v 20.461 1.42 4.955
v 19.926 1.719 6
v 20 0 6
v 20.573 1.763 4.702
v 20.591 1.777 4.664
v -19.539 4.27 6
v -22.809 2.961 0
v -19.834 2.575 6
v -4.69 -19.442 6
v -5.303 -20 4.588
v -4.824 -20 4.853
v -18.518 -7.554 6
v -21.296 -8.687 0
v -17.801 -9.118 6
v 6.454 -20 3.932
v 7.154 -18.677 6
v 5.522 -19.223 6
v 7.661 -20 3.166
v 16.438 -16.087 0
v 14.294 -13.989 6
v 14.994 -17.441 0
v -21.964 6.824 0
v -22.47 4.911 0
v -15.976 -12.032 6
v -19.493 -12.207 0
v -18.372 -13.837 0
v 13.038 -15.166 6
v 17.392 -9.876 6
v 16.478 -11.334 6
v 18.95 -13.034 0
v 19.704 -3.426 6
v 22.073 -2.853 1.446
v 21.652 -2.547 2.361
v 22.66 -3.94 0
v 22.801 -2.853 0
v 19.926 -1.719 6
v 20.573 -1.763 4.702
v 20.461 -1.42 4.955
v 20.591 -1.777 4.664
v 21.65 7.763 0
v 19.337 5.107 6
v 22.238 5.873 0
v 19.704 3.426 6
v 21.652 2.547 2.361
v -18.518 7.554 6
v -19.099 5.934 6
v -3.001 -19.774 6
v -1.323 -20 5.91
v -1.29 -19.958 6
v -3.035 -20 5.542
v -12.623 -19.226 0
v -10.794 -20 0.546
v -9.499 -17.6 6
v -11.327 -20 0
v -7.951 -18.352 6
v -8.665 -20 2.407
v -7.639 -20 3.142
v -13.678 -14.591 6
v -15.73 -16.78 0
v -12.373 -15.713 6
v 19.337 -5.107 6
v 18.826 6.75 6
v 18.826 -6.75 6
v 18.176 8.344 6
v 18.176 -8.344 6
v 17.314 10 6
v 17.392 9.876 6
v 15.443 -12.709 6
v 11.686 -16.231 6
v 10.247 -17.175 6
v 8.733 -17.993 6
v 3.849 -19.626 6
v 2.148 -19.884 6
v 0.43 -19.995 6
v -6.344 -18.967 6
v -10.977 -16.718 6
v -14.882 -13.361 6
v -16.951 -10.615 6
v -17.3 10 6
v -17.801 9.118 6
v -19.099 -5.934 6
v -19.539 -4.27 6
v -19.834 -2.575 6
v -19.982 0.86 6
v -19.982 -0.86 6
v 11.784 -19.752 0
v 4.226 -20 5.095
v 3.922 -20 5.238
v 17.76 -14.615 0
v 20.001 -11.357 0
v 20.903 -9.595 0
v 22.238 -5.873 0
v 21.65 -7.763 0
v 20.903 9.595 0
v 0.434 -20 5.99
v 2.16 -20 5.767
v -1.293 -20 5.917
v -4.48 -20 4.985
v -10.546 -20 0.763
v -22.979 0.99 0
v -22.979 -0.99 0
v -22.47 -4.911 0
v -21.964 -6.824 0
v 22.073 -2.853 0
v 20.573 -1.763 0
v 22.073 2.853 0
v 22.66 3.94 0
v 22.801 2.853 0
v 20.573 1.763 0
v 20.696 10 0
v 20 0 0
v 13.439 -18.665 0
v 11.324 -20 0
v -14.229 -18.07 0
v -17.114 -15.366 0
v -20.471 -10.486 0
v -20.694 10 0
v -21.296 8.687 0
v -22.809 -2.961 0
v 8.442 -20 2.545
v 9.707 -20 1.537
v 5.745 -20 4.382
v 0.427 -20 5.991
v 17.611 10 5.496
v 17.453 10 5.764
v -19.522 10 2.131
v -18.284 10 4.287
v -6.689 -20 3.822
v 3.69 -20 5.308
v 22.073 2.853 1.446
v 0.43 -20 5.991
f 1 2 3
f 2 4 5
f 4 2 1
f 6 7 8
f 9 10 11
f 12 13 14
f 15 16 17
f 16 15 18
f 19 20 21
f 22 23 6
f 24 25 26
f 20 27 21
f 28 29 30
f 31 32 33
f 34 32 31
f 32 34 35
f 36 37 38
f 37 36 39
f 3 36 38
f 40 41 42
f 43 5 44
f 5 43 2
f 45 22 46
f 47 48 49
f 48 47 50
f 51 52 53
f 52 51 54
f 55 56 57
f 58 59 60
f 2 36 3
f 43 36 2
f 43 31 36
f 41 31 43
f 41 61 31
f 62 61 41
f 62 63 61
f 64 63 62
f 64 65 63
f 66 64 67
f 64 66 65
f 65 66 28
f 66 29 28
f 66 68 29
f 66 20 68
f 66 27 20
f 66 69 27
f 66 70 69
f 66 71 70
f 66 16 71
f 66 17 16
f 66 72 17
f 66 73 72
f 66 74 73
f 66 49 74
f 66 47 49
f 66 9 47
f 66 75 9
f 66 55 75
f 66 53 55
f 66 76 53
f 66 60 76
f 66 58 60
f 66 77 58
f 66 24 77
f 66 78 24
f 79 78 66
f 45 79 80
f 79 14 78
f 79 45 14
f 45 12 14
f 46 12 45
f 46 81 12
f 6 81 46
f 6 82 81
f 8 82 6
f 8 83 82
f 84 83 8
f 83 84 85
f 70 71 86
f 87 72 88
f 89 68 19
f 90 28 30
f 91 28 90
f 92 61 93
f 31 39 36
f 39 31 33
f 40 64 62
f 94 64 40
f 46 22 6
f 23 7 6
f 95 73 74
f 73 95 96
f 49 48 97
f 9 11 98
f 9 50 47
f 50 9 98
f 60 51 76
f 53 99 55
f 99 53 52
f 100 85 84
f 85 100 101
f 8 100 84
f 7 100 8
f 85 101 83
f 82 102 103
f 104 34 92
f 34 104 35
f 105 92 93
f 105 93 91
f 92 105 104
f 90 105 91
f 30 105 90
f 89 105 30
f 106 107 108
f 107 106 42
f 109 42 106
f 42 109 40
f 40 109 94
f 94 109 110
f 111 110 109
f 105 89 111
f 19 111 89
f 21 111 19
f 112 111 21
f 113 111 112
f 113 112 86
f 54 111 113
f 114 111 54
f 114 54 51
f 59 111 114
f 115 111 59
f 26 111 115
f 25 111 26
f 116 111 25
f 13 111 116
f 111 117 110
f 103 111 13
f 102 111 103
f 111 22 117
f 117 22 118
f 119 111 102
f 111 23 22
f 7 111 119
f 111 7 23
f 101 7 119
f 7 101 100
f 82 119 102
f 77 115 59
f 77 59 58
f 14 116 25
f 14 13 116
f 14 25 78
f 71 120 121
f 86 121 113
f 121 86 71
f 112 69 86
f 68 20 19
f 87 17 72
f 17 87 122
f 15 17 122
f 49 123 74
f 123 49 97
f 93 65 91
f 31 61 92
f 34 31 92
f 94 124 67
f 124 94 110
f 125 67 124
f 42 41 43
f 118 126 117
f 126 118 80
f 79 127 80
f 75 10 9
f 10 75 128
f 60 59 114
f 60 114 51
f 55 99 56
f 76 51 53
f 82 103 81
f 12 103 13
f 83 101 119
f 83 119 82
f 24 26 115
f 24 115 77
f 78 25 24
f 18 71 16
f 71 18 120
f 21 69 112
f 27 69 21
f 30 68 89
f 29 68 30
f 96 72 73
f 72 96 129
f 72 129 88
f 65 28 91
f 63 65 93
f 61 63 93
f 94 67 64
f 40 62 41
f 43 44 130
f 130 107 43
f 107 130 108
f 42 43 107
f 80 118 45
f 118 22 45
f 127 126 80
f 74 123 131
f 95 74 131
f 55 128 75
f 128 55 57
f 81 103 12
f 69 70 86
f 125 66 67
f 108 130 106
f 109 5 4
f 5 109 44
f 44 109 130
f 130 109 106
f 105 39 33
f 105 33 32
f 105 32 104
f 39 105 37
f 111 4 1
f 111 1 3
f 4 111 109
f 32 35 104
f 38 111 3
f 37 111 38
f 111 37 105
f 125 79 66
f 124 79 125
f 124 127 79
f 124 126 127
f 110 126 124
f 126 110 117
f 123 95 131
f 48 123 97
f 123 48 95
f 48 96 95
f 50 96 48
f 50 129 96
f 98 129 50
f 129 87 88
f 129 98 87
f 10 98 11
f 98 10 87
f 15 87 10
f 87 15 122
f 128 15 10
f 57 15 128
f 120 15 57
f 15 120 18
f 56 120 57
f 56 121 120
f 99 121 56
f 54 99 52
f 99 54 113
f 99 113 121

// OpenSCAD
//=============================================================================
// hook-bracket.scad
//
// Bracket for using command strip with some random towel hook I have.
//=============================================================================
// Written in 2017 by Patrick Barrett
//
// To the extent possible under law, the author(s) have dedicated all copyright
// and related and neighboring rights to this work to the public domain
// worldwide. This work is distributed without any warranty.
//
// See <http://creativecommons.org/publicdomain/zero/1.0/> for full dedication.
//=============================================================================

diameter1 = 46;
diameter2 = 40;
thickness = 6;

left_limit = 20;
right_limit = 10;

dent_depth = 3;

// customizable variables end here

abit = 0.001; //use for making overlap to get single manifold stl
alot = 100;

$fa = 1;


difference() {
    // main body
    cylinder(h = thickness, d1 = diameter1, d2 = diameter2);
    
    // dent for grub screw
    translate([diameter1/2,0,-alot/2])
    cylinder(h=alot, r = dent_depth);
    
    // right body limit (save printing time, space for strip removal pull)
    translate([-alot/2,0 + right_limit,-alot/2])
    cube([alot,alot,alot]);
    
    // left body limit (save printing time)
    translate([-alot/2,-alot - left_limit,-alot/2])
    cube([alot,alot,alot]);
}
